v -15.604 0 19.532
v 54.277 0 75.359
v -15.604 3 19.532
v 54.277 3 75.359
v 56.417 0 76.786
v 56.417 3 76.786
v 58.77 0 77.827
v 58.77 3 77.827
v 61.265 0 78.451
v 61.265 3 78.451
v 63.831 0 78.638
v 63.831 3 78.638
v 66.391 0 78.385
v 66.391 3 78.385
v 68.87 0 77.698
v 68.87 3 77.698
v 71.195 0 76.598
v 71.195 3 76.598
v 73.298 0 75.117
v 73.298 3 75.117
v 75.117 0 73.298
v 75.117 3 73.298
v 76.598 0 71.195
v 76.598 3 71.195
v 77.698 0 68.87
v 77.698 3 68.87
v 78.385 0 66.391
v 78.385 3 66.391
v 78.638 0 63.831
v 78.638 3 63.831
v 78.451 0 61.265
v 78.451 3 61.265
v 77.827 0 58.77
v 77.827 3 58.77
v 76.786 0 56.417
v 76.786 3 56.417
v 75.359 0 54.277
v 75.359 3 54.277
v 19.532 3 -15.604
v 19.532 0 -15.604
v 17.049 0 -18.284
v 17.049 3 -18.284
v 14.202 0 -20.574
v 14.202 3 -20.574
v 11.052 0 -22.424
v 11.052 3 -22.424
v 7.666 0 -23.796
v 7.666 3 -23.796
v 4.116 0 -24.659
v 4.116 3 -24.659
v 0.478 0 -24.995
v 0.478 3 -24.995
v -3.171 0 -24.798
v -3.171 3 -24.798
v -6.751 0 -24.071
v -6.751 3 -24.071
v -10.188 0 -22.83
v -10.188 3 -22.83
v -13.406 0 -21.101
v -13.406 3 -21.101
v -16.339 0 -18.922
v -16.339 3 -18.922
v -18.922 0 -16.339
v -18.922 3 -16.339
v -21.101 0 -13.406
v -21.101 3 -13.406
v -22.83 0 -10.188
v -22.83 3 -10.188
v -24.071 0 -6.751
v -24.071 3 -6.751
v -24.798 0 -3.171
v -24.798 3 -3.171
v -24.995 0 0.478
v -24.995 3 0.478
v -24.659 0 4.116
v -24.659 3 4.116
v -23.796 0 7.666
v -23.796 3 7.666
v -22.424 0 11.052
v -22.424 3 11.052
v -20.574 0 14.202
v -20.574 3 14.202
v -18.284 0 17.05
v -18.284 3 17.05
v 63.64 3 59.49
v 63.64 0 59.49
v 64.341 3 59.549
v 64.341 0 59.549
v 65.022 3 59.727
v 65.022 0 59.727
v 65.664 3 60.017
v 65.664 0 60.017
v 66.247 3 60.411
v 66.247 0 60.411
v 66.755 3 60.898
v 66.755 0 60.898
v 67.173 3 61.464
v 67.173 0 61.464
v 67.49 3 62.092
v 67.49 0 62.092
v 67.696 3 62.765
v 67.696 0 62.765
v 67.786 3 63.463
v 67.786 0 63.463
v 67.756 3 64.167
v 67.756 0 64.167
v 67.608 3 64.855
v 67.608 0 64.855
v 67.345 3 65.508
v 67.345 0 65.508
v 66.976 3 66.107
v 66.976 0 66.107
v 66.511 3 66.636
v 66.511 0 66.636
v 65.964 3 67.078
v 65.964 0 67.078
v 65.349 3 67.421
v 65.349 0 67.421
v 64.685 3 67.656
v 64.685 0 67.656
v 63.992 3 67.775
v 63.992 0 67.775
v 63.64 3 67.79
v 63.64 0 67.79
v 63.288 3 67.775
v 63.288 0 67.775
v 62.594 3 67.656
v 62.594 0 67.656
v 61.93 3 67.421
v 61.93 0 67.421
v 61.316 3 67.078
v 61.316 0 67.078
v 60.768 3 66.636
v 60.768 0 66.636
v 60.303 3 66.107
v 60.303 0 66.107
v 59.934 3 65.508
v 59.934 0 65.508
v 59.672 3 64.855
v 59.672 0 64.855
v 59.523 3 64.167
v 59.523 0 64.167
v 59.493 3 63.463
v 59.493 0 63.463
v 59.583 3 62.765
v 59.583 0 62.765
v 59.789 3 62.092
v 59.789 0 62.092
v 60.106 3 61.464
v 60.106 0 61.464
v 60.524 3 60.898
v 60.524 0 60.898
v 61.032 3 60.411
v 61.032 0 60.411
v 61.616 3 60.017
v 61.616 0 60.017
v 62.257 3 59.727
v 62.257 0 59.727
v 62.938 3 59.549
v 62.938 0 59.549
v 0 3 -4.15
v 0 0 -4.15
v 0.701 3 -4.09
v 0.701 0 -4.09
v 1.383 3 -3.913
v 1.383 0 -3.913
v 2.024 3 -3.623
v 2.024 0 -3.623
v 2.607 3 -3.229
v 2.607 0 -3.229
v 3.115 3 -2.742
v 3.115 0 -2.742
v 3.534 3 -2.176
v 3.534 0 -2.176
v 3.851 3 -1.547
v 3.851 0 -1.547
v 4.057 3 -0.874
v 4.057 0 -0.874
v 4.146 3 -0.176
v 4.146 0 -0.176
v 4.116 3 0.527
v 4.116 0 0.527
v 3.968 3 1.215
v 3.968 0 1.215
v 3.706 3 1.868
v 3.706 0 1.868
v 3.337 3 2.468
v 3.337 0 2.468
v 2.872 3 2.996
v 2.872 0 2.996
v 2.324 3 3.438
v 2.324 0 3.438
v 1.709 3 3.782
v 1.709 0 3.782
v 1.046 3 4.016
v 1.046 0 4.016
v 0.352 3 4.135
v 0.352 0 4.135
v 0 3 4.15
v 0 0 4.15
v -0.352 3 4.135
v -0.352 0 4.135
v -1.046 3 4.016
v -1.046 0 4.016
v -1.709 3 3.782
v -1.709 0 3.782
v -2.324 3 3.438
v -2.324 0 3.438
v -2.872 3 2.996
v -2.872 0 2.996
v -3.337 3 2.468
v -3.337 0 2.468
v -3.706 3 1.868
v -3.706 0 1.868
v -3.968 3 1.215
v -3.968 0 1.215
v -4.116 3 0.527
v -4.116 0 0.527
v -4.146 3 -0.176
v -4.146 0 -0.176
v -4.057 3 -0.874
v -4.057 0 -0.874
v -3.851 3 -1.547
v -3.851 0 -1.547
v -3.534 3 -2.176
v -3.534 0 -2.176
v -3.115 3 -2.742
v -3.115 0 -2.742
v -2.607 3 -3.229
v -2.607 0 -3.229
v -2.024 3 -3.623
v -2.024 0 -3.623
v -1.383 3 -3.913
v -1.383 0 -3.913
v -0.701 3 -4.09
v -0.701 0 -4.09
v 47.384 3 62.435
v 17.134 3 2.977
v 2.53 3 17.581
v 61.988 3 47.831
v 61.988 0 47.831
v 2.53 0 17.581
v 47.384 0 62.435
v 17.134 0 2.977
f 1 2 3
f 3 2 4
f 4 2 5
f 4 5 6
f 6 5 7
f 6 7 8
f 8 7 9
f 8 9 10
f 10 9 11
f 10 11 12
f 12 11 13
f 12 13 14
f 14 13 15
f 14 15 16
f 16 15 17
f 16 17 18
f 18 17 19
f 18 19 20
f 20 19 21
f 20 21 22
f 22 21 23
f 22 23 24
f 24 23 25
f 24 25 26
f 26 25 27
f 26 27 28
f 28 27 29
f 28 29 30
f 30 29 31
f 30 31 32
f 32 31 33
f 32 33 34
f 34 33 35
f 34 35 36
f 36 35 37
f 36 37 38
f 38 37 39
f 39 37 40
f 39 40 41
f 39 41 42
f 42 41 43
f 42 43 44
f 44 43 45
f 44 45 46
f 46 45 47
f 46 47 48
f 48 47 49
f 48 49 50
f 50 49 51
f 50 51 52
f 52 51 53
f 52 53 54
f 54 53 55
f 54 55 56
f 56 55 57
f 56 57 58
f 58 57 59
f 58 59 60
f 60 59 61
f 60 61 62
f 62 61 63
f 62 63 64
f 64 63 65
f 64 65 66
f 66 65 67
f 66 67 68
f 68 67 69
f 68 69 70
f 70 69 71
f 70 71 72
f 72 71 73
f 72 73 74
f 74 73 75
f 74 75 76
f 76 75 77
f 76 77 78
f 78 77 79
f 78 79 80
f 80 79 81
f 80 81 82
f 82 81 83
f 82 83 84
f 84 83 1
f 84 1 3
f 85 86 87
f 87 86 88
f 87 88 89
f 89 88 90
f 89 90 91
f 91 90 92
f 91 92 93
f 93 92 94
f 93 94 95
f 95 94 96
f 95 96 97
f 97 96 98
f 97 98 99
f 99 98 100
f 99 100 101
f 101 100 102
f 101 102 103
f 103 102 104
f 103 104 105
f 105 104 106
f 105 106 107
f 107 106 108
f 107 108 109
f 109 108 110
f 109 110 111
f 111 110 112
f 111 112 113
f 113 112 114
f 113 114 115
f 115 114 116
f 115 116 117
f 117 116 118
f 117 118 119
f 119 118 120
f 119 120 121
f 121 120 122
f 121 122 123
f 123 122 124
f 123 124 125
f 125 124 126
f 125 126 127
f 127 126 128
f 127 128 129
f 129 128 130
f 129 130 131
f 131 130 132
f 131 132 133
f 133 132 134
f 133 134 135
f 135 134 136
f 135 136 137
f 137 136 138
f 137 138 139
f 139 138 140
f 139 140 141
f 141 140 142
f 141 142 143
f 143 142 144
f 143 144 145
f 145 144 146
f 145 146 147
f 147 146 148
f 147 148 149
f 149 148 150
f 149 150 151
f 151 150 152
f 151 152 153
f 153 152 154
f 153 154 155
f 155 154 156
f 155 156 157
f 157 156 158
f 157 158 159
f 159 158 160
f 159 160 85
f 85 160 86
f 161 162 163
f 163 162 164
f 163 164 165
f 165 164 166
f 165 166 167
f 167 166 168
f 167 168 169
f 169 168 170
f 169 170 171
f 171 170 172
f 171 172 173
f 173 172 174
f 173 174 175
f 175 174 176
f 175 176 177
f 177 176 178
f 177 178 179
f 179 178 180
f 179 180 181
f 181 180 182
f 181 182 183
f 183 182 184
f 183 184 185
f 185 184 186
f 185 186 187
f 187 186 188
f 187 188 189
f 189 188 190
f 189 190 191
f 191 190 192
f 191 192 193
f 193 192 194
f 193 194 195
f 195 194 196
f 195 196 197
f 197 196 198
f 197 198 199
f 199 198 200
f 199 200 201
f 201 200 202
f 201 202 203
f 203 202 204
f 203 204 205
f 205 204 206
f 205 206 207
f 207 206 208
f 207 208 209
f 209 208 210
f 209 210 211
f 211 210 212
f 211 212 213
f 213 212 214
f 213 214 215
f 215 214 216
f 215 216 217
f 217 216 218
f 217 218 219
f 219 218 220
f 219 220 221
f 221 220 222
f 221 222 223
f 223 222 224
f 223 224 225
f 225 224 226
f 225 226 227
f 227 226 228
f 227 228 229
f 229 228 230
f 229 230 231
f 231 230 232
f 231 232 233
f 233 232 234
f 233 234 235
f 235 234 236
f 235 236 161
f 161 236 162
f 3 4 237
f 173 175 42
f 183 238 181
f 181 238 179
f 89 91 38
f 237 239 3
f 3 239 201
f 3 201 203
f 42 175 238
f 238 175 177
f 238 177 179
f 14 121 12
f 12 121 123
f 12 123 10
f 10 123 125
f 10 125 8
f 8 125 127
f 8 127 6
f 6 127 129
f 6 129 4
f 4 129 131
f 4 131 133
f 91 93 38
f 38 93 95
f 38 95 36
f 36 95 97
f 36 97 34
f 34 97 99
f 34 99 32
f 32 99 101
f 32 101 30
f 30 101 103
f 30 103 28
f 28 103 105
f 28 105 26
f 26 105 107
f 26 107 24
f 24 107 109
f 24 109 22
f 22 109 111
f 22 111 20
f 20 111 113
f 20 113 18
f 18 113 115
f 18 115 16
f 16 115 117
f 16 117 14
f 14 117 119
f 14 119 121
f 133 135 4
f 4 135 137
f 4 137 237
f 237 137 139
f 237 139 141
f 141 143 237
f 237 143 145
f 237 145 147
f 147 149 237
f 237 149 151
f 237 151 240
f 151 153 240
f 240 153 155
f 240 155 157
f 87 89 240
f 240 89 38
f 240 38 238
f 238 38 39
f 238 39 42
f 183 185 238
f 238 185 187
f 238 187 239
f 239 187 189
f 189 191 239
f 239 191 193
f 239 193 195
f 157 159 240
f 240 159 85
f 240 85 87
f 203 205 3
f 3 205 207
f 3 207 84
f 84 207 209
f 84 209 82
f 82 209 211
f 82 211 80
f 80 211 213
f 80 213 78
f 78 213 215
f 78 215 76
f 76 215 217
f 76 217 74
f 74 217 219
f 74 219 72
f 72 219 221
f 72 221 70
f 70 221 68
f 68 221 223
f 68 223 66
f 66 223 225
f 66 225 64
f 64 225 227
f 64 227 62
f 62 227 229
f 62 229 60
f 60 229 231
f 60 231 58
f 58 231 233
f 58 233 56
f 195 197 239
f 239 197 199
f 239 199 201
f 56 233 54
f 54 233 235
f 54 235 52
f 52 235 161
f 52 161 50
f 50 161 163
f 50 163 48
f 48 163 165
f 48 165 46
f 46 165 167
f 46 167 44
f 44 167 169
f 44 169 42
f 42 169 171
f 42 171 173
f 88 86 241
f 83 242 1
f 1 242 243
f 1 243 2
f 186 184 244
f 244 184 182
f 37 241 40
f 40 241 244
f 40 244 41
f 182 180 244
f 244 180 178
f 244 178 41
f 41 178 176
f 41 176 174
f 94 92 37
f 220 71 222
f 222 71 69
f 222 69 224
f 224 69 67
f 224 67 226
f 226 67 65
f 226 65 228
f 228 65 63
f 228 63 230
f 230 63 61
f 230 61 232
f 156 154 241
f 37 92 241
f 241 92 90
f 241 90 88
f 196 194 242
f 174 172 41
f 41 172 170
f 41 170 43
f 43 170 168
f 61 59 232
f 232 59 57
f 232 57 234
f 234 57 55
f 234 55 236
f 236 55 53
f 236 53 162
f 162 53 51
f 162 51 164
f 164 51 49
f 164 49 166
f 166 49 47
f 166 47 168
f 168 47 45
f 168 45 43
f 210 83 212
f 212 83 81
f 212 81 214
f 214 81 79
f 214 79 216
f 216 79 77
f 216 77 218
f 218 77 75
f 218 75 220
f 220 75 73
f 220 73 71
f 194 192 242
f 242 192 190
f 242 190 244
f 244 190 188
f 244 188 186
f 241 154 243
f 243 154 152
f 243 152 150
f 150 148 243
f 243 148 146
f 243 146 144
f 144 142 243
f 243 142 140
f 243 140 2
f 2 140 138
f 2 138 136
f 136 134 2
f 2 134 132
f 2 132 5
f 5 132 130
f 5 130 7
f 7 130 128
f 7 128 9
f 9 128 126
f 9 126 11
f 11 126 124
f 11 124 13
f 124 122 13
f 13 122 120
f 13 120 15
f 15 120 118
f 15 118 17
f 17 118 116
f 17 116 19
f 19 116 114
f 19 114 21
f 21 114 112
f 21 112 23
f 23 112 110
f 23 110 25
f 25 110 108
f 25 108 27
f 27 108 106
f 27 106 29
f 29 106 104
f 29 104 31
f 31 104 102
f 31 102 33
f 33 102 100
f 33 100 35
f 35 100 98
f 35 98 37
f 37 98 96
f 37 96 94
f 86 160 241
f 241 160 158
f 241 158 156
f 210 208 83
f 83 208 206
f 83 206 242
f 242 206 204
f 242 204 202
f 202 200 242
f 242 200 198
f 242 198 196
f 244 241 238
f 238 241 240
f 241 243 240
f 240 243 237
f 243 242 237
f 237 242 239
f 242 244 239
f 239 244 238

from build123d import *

# Parameters (mm, degrees)
SKETCH_1_R          = 4.15
EXTRUDE_1_DEPTH     = 3
EXTRUDE_2_DEPTH     = 12
CUT_EXTRUDE_1_DEPTH = 112.858735101
CUT_EXTRUDE_2_DEPTH = 112.858735101


with BuildPart() as part:
    # 草图1 → 凸台-拉伸1 (new body)
    with BuildSketch(Plane(origin=(0, 0, 0), x_dir=(1, 0, 0), z_dir=(0, 1, 0))):
        with BuildLine():
            ThreePointArc((19.532394726, 15.60402372), (-17.67766953, 17.67766953), (-15.60402372, -19.532394726))
            Line((-15.60402372, -19.532394726), (54.277196075, -75.359047143))
            ThreePointArc((54.277196075, -75.359047143), (74.246212025, -74.246212025), (75.359047143, -54.277196075))
            Line((75.359047143, -54.277196075), (19.532394726, 15.60402372))
        make_face()
        with Locations(Location((0, 0, 0), (0, 0, 270))):
            Circle(SKETCH_1_R, mode=Mode.SUBTRACT)
        with Locations(Location((63.639610307, -63.639610307, 0), (0, 0, 270))):
            Circle(SKETCH_1_R, mode=Mode.SUBTRACT)
    extrude(amount=EXTRUDE_1_DEPTH)

    # 草图3 → 凸台-拉伸2 (add)
    with BuildSketch(Plane(origin=(0, 3, 0), x_dir=(1, 0, 0), z_dir=(0, 1, 0))):
        with BuildLine():
            ThreePointArc((54.277196075, -75.359047143), (74.246212025, -74.246212025), (75.359047143, -54.277196075))
            Line((75.359047143, -54.277196075), (19.532394726, 15.60402372))
            ThreePointArc((19.532394726, 15.60402372), (-17.67766953, 17.67766953), (-15.60402372, -19.532394726))
            Line((-15.60402372, -19.532394726), (54.277196075, -75.359047143))
        make_face()
        with BuildLine():
            Line((17.969803148, 14.355701822), (73.796455565, -55.525517972))
            ThreePointArc((73.796455565, -55.525517972), (72.831998462, -72.831998462), (55.525517972, -73.796455565))
            Line((55.525517972, -73.796455565), (-14.355701822, -17.969803148))
            ThreePointArc((-14.355701822, -17.969803148), (-16.263455967, 16.263455967), (17.969803148, 14.355701822))
        make_face(mode=Mode.SUBTRACT)
    extrude(amount=EXTRUDE_2_DEPTH)

    # 草图4 → 切除-拉伸1 (cut, through all)
    with BuildSketch(Plane(origin=(0, 3, 0), x_dir=(1, 0, 0), z_dir=(0, 1, 0))):
        Polygon((17.133662373, -2.976992155), (10.055327264, -10.055327264), (54.909619217, -54.909619217), (61.987954325, -47.831284108), align=None)
        Polygon((54.909619217, -54.909619217), (10.055327264, -10.055327264), (2.529939412, -17.580715117), (47.384231364, -62.435007069), align=None)
    extrude(amount=-CUT_EXTRUDE_1_DEPTH, mode=Mode.SUBTRACT)

    # 草图5 → 切除-拉伸2 (cut, through all)
    with BuildSketch(Plane(origin=(0, 3, 0), x_dir=(1, 0, 0), z_dir=(0, 1, 0))):
        with BuildLine():
            Line((-6.700597737, -24.085306516), (-14.355701822, -17.969803148))
            ThreePointArc((-14.355701822, -17.969803148), (-16.263455967, 16.263455967), (17.969803148, 14.355701822))
            Line((17.969803148, 14.355701822), (24.085306516, 6.700597737))
            ThreePointArc((24.085306516, 6.700597737), (22.258564958, 11.382279474), (19.532394726, 15.60402372))
            ThreePointArc((19.532394726, 15.60402372), (-17.67766953, 17.67766953), (-15.60402372, -19.532394726))
            ThreePointArc((-15.60402372, -19.532394726), (-11.382279474, -22.258564958), (-6.700597737, -24.085306516))
        make_face()
        with BuildLine():
            Line((24.085306516, 6.700597737), (69.125662715, -49.678835652))
            ThreePointArc((69.125662715, -49.678835652), (72.544296976, -51.568713268), (75.359047143, -54.277196075))
            Line((75.359047143, -54.277196075), (19.532394726, 15.60402372))
            ThreePointArc((19.532394726, 15.60402372), (22.258564958, 11.382279474), (24.085306516, 6.700597737))
        make_face()
        with BuildLine():
            Line((49.678835652, -69.125662715), (-6.700597737, -24.085306516))
            ThreePointArc((-6.700597737, -24.085306516), (-11.382279474, -22.258564958), (-15.60402372, -19.532394726))
            Line((-15.60402372, -19.532394726), (54.277196075, -75.359047143))
            ThreePointArc((54.277196075, -75.359047143), (51.568713268, -72.544296976), (49.678835652, -69.125662715))
        make_face()
        with BuildLine():
            ThreePointArc((75.359047143, -54.277196075), (72.544296976, -51.568713268), (69.125662715, -49.678835652))
            Line((69.125662715, -49.678835652), (73.796455565, -55.525517972))
            ThreePointArc((73.796455565, -55.525517972), (75.908248951, -59.340714422), (76.639610307, -63.639610307))
            ThreePointArc((76.639610307, -63.639610307), (69.275069456, -75.354626319), (55.525517972, -73.796455565))
            Line((55.525517972, -73.796455565), (49.678835652, -69.125662715))
            ThreePointArc((49.678835652, -69.125662715), (51.568713268, -72.544296976), (54.277196075, -75.359047143))
            ThreePointArc((54.277196075, -75.359047143), (70.142063172, -77.156936475), (78.639610307, -63.639610307))
            ThreePointArc((78.639610307, -63.639610307), (77.795731819, -58.679345825), (75.359047143, -54.277196075))
        make_face()
    extrude(amount=CUT_EXTRUDE_2_DEPTH, mode=Mode.SUBTRACT)


solid = part.part
